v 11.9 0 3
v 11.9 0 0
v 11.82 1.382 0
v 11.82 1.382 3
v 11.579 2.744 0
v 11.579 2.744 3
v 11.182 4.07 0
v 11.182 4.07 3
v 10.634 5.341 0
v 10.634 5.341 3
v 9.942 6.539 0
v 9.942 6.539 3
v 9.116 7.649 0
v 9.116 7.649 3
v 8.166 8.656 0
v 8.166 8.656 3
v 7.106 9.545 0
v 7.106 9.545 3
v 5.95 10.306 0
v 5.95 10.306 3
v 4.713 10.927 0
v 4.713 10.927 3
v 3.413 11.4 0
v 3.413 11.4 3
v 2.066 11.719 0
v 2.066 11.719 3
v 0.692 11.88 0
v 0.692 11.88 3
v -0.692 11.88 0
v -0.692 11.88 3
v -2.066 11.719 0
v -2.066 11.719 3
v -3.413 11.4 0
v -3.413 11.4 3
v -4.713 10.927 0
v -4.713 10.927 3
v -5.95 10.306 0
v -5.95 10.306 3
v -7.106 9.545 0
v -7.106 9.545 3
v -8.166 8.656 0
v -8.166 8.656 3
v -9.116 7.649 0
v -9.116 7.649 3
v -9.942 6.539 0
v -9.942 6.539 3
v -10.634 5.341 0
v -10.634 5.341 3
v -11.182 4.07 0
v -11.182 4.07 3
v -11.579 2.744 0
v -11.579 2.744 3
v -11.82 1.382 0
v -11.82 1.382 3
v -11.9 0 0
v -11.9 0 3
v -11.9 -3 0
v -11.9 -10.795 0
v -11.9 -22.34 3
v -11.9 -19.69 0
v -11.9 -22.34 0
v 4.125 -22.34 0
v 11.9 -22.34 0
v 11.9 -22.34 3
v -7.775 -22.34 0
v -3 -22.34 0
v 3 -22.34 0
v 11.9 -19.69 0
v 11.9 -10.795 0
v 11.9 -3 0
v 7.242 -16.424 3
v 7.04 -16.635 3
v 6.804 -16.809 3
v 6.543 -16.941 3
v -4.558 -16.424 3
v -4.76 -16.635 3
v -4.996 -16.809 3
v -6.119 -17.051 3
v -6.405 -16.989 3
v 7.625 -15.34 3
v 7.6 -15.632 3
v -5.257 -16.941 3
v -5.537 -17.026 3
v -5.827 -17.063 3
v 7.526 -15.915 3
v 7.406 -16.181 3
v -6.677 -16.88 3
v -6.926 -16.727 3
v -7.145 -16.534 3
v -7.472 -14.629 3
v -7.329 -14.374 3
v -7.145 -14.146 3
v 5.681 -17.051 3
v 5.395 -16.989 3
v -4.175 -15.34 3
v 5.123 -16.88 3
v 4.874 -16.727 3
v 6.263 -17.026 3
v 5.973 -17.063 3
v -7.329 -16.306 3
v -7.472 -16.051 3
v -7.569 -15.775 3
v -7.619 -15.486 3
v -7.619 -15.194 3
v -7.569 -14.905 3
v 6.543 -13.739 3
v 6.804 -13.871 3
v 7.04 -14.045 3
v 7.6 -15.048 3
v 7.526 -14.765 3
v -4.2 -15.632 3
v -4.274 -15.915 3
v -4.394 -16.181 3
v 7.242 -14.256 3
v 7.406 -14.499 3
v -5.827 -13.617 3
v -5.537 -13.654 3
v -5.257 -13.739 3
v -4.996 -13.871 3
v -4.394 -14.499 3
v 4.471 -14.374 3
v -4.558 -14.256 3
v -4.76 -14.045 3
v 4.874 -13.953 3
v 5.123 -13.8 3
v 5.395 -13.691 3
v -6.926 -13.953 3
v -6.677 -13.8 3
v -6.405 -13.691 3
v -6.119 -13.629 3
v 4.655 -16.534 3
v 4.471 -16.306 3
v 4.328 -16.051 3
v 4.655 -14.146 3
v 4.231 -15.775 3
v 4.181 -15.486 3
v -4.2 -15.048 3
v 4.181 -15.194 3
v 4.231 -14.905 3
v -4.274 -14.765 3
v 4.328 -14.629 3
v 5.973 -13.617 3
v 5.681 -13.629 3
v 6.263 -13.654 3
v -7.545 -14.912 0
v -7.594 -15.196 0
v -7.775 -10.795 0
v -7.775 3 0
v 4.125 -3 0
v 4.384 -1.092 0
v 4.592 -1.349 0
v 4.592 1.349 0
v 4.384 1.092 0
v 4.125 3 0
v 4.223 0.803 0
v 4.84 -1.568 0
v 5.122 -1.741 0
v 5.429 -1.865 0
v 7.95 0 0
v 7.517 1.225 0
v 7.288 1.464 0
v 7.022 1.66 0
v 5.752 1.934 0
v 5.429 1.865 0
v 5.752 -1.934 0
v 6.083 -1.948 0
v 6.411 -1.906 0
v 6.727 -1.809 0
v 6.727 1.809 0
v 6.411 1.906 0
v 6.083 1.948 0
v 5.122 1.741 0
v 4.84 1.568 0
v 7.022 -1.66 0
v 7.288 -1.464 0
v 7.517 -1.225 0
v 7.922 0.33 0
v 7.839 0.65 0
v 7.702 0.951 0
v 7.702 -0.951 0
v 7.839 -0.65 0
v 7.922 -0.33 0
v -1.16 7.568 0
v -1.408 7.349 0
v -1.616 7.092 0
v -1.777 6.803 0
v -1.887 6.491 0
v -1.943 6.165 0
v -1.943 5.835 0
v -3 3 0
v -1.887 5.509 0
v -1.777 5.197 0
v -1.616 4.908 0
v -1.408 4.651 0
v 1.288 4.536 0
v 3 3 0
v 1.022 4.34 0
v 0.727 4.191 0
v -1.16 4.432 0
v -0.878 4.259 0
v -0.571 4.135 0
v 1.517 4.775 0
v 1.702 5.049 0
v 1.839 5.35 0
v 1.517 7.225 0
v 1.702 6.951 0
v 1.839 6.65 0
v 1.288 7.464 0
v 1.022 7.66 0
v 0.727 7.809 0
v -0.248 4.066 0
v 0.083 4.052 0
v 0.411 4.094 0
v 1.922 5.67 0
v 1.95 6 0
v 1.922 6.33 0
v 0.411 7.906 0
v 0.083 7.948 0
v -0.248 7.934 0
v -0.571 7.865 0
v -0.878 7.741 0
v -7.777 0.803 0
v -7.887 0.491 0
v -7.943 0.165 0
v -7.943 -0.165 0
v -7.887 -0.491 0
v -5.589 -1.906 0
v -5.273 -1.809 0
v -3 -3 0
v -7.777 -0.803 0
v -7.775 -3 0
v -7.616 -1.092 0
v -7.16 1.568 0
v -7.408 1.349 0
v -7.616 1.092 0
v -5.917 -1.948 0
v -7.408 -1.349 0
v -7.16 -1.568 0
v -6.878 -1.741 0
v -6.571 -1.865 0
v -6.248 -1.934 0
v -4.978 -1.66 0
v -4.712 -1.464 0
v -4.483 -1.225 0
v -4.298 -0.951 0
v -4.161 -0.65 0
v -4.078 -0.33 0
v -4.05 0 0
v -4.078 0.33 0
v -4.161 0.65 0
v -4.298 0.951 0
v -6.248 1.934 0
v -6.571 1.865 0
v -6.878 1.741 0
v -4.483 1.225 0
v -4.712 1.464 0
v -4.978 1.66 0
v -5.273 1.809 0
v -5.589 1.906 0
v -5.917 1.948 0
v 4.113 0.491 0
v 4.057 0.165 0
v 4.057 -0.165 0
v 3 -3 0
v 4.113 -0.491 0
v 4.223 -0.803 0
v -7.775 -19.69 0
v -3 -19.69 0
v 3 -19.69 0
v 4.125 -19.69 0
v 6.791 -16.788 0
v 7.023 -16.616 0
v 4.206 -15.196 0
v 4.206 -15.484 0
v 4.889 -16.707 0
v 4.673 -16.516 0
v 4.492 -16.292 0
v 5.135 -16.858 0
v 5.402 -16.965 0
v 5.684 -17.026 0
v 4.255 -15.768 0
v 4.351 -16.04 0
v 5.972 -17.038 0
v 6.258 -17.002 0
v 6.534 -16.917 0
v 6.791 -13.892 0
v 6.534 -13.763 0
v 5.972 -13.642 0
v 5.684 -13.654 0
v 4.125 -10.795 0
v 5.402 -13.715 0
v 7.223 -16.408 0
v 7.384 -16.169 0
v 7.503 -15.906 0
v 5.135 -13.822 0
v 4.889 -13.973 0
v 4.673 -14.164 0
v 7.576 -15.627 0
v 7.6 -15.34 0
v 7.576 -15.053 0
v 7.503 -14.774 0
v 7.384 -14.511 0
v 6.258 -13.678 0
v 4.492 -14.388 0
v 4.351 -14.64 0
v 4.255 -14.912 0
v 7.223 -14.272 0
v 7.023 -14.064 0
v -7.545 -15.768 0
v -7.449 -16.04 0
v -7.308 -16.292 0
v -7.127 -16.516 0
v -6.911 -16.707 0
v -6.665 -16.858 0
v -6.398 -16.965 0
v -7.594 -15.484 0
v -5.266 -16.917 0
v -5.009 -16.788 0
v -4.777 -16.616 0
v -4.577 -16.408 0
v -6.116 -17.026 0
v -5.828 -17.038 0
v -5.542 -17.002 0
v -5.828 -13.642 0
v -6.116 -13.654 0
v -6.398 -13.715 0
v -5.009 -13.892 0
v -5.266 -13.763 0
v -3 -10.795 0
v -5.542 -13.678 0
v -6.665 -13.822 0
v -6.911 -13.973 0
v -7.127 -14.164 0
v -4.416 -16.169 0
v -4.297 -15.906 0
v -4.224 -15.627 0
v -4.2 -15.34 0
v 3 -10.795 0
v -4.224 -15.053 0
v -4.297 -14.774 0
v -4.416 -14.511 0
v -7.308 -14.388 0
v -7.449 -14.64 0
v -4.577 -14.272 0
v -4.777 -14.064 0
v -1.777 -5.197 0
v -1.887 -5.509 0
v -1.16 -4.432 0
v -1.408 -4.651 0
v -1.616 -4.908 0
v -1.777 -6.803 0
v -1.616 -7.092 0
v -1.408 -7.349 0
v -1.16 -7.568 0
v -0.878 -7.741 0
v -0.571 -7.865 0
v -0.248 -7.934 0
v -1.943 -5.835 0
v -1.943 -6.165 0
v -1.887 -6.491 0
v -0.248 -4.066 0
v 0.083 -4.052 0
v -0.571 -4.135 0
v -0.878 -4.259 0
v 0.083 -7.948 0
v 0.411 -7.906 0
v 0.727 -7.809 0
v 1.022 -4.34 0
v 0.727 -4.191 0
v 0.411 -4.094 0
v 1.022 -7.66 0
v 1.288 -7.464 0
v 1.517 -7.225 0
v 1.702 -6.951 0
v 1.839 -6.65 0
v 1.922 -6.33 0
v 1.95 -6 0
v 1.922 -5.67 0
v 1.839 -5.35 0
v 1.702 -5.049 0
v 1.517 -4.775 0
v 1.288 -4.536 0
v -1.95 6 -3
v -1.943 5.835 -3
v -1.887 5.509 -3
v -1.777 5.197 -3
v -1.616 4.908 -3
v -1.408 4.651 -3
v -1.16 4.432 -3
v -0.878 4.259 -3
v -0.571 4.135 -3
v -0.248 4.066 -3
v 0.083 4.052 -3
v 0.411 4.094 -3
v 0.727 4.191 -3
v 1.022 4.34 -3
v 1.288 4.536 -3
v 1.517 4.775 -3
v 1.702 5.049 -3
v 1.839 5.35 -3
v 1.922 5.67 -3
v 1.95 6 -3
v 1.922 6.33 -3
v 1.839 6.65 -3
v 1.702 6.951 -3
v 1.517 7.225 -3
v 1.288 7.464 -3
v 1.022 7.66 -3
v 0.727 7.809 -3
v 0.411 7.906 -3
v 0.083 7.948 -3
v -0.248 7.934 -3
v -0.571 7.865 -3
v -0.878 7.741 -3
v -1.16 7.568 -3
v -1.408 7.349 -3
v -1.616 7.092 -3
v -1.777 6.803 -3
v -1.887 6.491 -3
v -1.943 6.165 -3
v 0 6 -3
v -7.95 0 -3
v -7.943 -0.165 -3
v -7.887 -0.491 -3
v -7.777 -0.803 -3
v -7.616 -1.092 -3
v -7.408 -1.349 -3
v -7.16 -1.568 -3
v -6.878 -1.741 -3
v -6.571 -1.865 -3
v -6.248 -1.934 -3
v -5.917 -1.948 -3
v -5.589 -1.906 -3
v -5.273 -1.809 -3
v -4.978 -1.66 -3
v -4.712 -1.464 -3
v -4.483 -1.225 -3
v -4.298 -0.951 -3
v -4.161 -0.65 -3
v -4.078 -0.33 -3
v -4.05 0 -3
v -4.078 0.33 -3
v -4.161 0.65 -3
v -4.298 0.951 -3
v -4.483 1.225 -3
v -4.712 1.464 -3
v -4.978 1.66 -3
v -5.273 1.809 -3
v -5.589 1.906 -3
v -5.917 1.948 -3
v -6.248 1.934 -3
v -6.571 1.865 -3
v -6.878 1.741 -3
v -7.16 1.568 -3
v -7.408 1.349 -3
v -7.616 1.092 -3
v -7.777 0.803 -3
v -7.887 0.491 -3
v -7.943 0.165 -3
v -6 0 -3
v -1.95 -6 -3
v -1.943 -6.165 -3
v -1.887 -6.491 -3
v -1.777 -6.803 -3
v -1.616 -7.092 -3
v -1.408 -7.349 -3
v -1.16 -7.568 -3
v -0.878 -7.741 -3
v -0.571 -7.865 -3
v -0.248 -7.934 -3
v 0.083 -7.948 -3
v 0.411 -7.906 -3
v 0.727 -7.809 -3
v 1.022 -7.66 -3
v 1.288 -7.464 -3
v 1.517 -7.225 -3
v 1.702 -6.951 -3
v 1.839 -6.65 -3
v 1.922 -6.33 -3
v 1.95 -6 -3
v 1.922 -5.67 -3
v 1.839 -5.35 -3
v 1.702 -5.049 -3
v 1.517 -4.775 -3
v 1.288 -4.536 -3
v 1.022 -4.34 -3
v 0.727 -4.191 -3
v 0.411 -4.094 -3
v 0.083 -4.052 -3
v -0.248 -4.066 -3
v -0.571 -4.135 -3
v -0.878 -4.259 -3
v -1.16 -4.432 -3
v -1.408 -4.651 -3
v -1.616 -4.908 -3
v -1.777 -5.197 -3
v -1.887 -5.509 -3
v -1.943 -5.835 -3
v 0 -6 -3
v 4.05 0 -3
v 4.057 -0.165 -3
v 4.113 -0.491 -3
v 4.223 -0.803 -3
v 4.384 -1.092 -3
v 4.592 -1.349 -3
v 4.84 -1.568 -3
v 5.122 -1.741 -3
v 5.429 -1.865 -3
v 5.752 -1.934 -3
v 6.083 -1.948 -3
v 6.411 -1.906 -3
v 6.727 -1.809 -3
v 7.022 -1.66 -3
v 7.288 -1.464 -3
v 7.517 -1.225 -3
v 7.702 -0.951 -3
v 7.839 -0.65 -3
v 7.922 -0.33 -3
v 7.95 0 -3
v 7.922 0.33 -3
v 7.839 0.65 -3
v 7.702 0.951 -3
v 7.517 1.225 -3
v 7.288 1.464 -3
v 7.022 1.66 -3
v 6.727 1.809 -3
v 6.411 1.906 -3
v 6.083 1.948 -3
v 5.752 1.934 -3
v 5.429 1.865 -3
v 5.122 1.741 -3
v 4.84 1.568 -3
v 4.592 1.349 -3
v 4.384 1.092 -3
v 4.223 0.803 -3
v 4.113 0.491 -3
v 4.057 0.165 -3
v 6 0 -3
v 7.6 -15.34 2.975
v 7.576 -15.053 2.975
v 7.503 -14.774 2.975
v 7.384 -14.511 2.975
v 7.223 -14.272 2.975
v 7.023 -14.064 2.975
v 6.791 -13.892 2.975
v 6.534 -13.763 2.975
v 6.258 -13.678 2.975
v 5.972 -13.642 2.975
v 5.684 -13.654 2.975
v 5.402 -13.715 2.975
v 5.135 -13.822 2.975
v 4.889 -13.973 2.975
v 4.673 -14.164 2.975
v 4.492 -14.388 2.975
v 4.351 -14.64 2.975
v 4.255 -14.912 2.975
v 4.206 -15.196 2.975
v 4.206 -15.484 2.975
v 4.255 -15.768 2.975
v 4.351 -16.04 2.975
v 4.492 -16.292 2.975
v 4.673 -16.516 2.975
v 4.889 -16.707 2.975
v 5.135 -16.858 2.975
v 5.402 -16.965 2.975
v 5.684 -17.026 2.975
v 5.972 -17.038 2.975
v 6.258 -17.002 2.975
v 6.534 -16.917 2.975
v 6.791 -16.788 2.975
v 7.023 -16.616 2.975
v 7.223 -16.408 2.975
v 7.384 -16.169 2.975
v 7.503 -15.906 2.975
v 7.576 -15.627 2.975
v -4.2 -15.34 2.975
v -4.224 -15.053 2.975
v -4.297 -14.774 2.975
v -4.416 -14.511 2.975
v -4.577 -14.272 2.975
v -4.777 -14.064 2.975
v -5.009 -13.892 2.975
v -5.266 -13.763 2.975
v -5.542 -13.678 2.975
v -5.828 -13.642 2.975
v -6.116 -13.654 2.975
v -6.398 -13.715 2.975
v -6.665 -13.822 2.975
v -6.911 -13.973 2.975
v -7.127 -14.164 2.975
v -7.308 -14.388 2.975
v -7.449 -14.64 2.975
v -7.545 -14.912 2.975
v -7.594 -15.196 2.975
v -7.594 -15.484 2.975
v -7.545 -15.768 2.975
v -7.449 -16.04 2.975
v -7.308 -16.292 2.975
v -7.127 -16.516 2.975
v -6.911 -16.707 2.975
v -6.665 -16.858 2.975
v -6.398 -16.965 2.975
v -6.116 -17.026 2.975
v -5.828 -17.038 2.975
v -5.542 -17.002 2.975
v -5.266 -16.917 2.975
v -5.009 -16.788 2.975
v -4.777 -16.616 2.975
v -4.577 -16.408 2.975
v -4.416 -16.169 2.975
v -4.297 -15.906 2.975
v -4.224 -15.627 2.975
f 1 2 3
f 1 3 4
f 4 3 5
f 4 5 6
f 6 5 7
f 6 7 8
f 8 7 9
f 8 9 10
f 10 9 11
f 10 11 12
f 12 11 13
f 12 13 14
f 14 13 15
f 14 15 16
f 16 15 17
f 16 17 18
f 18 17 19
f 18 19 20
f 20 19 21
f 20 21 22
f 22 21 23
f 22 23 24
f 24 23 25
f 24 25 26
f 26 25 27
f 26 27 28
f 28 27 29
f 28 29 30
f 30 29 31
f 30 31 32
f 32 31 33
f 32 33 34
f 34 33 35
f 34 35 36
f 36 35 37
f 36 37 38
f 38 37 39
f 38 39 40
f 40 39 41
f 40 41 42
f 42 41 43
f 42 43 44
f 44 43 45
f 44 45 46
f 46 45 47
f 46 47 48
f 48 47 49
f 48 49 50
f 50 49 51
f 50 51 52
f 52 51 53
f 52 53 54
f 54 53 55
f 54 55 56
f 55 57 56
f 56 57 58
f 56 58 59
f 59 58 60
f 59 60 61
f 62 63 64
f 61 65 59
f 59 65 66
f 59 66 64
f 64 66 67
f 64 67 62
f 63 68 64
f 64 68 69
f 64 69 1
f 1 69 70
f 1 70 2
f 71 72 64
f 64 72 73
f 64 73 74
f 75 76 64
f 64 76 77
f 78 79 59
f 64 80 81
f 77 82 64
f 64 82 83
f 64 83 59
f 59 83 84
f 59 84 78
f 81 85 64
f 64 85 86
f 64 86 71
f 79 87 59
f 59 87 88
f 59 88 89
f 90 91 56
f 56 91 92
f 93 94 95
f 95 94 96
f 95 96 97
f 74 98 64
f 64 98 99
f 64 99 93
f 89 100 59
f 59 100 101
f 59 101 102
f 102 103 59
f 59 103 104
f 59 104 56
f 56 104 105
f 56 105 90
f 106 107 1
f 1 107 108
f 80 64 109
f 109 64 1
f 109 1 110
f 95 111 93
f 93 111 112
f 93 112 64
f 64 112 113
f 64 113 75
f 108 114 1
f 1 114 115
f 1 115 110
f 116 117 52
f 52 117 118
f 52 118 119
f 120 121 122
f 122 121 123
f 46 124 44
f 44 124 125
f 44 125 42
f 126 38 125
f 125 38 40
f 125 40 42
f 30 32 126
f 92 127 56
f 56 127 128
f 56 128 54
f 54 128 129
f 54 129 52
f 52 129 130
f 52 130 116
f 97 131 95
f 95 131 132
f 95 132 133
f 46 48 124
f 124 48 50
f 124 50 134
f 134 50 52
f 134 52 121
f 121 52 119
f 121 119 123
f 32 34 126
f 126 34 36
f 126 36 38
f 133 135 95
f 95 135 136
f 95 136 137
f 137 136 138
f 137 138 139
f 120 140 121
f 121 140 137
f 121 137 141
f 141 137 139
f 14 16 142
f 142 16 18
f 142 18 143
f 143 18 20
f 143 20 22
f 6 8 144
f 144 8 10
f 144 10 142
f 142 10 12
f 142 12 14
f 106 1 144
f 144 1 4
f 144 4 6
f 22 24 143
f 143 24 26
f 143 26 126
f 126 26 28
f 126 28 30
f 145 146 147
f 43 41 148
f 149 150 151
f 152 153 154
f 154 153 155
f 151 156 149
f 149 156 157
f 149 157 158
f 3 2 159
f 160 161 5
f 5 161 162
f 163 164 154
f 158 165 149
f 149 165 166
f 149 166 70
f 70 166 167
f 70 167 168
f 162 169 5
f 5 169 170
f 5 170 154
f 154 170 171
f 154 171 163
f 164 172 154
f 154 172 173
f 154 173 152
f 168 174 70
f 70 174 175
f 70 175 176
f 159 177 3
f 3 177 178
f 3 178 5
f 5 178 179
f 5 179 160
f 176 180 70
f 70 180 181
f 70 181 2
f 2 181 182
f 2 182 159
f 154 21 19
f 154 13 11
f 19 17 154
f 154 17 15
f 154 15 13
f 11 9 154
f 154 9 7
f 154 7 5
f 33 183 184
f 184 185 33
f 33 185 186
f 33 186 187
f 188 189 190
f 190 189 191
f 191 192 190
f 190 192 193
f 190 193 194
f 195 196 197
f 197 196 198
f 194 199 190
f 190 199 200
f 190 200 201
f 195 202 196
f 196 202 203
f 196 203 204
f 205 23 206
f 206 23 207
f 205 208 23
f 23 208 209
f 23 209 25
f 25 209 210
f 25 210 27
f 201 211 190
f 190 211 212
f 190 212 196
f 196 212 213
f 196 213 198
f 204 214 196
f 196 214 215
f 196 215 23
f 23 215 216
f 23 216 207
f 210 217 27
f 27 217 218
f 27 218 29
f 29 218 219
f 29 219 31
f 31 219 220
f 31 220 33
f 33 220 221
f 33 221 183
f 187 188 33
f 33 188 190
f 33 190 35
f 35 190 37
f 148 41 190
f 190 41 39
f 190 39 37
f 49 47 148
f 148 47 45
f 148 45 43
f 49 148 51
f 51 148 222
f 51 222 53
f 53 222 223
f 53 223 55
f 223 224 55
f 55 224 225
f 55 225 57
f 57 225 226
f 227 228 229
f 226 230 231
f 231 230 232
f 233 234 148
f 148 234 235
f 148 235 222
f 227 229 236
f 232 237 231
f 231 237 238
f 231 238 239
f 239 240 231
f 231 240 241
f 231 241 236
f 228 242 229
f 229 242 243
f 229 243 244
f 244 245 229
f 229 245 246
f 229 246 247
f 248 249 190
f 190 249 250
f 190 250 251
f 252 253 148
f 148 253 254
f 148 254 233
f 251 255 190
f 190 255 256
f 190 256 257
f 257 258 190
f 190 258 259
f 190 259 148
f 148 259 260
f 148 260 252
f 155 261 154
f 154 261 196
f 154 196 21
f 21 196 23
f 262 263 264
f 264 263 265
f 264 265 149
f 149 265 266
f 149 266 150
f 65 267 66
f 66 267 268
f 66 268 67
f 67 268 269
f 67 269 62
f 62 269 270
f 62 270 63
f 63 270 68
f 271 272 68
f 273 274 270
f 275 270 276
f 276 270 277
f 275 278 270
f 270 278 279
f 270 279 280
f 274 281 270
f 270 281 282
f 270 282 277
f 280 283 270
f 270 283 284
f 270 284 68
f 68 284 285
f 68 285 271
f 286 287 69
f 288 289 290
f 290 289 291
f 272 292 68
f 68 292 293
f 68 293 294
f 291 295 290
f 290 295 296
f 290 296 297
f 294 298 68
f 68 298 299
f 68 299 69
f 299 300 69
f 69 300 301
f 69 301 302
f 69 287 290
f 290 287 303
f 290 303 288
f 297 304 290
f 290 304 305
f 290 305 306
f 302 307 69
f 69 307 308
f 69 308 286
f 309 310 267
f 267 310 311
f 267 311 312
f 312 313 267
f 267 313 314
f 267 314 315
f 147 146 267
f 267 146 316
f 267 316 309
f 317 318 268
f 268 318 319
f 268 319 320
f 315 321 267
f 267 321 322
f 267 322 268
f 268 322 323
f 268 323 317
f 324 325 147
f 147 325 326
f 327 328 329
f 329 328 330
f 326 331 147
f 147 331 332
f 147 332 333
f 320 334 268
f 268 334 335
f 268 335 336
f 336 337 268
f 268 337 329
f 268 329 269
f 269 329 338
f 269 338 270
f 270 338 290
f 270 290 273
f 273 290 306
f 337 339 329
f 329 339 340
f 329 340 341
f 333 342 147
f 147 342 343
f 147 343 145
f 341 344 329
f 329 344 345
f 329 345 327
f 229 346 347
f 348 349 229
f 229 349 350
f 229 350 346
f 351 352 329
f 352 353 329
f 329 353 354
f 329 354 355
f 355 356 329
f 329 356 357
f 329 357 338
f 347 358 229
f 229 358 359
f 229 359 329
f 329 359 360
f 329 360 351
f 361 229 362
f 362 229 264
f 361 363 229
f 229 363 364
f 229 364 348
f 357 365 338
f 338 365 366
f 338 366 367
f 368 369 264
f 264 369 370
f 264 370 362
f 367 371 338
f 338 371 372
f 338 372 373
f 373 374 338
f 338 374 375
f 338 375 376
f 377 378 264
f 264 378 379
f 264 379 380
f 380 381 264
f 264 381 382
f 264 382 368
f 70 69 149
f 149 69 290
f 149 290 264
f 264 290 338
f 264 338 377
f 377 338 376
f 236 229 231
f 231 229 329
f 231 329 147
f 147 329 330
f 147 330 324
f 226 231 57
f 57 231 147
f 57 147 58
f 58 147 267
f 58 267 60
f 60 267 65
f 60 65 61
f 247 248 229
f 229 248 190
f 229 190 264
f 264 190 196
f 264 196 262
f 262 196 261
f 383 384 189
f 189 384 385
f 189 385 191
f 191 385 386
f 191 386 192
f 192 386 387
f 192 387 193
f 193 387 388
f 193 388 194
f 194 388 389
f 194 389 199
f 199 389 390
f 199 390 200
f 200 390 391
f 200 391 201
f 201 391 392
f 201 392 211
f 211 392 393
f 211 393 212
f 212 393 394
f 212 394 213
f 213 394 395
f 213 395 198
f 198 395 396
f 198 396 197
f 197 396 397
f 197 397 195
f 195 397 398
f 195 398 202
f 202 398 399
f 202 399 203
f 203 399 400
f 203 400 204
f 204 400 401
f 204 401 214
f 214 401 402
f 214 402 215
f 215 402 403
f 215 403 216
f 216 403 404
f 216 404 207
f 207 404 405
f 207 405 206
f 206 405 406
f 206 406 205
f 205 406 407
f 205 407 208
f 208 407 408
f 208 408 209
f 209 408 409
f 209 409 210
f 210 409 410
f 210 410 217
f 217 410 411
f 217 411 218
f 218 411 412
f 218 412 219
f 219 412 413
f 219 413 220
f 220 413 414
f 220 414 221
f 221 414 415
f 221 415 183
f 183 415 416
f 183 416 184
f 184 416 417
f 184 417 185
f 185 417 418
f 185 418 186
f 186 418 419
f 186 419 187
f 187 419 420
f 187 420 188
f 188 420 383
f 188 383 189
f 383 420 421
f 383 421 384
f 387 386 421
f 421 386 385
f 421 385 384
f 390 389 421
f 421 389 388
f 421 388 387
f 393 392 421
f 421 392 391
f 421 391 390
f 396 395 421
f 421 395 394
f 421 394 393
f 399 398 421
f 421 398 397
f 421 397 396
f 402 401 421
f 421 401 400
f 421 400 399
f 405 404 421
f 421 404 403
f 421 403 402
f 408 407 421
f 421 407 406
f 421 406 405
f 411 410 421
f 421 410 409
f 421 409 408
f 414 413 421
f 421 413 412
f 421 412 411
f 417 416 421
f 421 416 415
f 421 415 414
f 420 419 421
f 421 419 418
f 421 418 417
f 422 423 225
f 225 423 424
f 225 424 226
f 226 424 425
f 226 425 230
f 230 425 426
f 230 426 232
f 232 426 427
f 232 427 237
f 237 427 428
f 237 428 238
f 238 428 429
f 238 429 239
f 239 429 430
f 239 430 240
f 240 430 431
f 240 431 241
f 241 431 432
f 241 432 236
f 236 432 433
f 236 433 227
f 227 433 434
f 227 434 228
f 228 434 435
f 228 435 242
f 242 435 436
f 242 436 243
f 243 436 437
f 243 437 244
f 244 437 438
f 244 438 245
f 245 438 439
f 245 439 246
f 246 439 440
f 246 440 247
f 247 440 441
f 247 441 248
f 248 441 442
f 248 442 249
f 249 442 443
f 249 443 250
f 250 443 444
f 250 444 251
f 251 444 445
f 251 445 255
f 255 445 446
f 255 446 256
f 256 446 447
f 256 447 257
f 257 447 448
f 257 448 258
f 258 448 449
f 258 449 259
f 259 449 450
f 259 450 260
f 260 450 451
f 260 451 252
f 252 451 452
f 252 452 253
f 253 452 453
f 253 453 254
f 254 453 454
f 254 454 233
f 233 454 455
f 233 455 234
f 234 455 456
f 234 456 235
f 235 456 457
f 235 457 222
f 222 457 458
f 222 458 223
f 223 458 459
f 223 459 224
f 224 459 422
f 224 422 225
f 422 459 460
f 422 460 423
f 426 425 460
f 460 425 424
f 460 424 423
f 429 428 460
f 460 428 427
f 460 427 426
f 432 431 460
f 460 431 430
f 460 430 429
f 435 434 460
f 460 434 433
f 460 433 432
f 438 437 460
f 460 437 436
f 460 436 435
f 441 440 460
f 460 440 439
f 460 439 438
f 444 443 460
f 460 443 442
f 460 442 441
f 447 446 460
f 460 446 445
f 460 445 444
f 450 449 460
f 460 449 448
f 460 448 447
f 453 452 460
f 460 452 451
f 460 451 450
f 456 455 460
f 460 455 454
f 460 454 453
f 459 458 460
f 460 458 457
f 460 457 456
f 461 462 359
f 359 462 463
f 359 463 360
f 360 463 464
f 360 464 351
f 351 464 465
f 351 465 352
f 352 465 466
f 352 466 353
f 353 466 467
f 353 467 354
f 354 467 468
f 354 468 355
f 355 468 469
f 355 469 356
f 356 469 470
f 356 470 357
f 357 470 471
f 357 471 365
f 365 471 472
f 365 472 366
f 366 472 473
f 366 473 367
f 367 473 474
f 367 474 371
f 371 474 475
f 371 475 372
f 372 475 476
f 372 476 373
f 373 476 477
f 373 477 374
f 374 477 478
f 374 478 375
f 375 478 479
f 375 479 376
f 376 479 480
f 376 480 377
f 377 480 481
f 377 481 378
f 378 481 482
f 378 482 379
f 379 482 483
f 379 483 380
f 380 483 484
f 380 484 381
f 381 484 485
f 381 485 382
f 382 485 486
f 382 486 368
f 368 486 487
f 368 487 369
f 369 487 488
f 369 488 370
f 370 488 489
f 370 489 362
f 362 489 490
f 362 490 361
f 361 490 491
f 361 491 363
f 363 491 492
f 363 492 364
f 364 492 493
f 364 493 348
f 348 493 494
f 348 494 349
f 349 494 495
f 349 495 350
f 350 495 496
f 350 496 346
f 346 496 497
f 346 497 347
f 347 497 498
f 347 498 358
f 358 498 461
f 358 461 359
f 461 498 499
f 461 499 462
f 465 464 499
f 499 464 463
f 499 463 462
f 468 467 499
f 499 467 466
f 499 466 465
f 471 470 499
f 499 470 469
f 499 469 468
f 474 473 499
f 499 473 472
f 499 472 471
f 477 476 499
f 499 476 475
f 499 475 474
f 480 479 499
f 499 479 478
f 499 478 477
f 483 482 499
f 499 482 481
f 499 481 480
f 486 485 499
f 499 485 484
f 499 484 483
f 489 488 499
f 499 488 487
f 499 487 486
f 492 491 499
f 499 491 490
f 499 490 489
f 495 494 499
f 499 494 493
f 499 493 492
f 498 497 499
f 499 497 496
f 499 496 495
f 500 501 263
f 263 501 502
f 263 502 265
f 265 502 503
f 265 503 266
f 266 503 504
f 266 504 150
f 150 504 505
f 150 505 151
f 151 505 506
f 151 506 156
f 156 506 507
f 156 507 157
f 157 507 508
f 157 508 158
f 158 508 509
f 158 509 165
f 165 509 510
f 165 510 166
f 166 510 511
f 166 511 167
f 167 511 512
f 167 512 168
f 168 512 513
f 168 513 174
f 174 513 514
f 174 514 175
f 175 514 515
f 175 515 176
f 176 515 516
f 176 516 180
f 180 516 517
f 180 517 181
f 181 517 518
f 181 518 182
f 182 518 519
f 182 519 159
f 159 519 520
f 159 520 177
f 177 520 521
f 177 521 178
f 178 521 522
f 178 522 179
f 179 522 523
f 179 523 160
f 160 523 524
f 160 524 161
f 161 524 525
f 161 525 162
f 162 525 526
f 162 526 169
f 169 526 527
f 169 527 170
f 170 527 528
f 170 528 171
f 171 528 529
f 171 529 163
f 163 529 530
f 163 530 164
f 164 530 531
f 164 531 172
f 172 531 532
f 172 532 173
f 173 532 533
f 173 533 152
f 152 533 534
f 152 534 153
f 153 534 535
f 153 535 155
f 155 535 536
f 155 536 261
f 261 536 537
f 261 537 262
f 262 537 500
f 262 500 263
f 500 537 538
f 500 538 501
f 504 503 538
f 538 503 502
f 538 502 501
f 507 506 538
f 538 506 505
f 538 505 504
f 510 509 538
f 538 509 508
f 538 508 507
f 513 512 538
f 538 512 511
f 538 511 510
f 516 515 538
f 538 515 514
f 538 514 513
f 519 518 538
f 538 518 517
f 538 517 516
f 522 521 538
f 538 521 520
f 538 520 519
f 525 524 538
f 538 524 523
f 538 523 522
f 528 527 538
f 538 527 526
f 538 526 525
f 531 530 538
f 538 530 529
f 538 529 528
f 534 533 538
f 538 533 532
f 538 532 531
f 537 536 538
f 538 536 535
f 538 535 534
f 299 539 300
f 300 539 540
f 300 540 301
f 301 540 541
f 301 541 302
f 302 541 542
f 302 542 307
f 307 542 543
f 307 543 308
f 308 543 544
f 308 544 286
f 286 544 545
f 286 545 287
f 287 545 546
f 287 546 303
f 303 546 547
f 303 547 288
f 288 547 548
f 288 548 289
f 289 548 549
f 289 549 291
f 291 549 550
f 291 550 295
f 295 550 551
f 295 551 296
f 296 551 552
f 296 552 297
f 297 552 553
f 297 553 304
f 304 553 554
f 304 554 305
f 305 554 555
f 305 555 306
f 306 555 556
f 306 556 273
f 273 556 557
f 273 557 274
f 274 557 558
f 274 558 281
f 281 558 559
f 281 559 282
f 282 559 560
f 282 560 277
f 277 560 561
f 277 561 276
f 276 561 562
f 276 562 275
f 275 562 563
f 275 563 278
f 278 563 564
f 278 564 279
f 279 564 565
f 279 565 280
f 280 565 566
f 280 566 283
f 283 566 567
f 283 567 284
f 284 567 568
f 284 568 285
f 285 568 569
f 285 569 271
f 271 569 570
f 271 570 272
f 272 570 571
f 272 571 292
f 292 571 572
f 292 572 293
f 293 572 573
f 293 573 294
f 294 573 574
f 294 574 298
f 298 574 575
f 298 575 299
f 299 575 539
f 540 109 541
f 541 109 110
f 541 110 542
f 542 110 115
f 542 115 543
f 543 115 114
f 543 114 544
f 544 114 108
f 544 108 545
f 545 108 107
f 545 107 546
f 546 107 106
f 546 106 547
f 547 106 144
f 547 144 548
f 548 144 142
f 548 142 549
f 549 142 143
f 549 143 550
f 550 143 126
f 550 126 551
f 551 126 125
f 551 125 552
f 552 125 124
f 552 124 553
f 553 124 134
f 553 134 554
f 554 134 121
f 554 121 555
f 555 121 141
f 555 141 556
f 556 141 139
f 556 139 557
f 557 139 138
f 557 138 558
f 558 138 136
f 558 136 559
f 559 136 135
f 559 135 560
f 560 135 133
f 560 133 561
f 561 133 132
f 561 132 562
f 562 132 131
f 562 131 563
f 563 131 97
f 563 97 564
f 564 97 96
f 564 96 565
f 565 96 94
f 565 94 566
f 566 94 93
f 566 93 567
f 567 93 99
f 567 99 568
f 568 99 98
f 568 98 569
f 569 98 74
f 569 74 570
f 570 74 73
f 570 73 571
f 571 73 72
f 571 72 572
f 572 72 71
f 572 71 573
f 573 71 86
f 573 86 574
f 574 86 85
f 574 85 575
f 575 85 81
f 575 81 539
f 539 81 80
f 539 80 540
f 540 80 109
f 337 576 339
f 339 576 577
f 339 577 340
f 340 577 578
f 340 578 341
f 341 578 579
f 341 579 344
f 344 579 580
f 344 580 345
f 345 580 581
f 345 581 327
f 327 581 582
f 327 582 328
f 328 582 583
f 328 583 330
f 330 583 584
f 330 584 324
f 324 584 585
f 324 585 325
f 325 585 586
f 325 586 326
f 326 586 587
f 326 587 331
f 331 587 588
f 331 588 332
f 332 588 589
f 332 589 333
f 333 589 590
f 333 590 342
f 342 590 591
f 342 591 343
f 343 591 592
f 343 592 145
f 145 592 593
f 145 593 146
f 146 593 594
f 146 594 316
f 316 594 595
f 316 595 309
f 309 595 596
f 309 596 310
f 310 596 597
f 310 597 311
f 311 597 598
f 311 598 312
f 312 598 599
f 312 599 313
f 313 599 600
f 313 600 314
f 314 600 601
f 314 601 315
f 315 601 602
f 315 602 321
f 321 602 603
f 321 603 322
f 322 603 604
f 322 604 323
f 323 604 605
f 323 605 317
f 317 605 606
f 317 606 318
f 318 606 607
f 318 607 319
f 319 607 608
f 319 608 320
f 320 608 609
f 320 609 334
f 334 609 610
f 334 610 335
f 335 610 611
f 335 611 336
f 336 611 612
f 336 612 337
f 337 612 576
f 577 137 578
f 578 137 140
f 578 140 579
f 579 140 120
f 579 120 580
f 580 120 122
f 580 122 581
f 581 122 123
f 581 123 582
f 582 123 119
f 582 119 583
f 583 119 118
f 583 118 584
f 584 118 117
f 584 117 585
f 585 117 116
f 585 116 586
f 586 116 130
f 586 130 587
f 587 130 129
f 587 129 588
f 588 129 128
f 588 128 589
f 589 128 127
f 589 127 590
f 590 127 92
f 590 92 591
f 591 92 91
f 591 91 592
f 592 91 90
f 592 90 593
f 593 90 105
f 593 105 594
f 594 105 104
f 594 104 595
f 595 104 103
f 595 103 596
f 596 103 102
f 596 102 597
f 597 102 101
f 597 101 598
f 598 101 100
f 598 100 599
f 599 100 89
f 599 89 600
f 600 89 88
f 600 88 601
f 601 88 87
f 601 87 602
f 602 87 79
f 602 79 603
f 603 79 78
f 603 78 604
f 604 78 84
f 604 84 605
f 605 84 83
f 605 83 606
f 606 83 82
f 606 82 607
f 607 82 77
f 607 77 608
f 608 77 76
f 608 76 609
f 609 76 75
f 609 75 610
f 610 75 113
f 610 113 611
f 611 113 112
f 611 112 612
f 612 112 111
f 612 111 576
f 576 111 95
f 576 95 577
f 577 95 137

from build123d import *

# Parameters (mm, degrees)
BOSS_EXTRUDE1_DEPTH            = 3
SKETCH2_R                      = 1.95
BOSS_EXTRUDE2_DEPTH            = 3
M3_CLEARANCE_HOLE1_D           = 3.4
M3_CLEARANCE_HOLE1_CSINK_D     = 3.45
M3_CLEARANCE_HOLE1_CSINK_ANGLE = 90


with BuildPart() as part:
    # Sketch1 → Boss-Extrude1 (new body)
    with BuildSketch(Plane.XY):
        with BuildLine():
            Line((-11.9, 0), (-11.9, -22.34))
            Line((-11.9, -22.34), (11.9, -22.34))
            Line((11.9, -22.34), (11.9, 0))
            ThreePointArc((11.9, 0), (0, 11.9), (-11.9, 0))
        make_face()
    extrude(amount=BOSS_EXTRUDE1_DEPTH)

    # Sketch2 → Boss-Extrude2 (add)
    with BuildSketch(Plane(origin=(0, 0, 0), x_dir=(-1, 0, 0), z_dir=(0, 0, -1))):
        with Locations(Location((0, 6, 0), (0, 0, 180))):
            Circle(SKETCH2_R)
        with Locations(Location((6, 0, 0), (0, 0, 180))):
            Circle(SKETCH2_R)
        with Locations(Location((0, -6, 0), (0, 0, 180))):
            Circle(SKETCH2_R)
        with Locations(Location((-6, 0, 0), (0, 0, 180))):
            Circle(SKETCH2_R)
    extrude(amount=BOSS_EXTRUDE2_DEPTH)

    # M3 Clearance Hole1 (through all)
    with Locations(Plane(origin=(-5.9, -15.34, 3), x_dir=(1, 0, 0), z_dir=(0, 0, 1))):
        with Locations((0, 0), (11.8, 0)):
            CounterSinkHole(M3_CLEARANCE_HOLE1_D / 2, M3_CLEARANCE_HOLE1_CSINK_D / 2, counter_sink_angle=M3_CLEARANCE_HOLE1_CSINK_ANGLE)


solid = part.part
